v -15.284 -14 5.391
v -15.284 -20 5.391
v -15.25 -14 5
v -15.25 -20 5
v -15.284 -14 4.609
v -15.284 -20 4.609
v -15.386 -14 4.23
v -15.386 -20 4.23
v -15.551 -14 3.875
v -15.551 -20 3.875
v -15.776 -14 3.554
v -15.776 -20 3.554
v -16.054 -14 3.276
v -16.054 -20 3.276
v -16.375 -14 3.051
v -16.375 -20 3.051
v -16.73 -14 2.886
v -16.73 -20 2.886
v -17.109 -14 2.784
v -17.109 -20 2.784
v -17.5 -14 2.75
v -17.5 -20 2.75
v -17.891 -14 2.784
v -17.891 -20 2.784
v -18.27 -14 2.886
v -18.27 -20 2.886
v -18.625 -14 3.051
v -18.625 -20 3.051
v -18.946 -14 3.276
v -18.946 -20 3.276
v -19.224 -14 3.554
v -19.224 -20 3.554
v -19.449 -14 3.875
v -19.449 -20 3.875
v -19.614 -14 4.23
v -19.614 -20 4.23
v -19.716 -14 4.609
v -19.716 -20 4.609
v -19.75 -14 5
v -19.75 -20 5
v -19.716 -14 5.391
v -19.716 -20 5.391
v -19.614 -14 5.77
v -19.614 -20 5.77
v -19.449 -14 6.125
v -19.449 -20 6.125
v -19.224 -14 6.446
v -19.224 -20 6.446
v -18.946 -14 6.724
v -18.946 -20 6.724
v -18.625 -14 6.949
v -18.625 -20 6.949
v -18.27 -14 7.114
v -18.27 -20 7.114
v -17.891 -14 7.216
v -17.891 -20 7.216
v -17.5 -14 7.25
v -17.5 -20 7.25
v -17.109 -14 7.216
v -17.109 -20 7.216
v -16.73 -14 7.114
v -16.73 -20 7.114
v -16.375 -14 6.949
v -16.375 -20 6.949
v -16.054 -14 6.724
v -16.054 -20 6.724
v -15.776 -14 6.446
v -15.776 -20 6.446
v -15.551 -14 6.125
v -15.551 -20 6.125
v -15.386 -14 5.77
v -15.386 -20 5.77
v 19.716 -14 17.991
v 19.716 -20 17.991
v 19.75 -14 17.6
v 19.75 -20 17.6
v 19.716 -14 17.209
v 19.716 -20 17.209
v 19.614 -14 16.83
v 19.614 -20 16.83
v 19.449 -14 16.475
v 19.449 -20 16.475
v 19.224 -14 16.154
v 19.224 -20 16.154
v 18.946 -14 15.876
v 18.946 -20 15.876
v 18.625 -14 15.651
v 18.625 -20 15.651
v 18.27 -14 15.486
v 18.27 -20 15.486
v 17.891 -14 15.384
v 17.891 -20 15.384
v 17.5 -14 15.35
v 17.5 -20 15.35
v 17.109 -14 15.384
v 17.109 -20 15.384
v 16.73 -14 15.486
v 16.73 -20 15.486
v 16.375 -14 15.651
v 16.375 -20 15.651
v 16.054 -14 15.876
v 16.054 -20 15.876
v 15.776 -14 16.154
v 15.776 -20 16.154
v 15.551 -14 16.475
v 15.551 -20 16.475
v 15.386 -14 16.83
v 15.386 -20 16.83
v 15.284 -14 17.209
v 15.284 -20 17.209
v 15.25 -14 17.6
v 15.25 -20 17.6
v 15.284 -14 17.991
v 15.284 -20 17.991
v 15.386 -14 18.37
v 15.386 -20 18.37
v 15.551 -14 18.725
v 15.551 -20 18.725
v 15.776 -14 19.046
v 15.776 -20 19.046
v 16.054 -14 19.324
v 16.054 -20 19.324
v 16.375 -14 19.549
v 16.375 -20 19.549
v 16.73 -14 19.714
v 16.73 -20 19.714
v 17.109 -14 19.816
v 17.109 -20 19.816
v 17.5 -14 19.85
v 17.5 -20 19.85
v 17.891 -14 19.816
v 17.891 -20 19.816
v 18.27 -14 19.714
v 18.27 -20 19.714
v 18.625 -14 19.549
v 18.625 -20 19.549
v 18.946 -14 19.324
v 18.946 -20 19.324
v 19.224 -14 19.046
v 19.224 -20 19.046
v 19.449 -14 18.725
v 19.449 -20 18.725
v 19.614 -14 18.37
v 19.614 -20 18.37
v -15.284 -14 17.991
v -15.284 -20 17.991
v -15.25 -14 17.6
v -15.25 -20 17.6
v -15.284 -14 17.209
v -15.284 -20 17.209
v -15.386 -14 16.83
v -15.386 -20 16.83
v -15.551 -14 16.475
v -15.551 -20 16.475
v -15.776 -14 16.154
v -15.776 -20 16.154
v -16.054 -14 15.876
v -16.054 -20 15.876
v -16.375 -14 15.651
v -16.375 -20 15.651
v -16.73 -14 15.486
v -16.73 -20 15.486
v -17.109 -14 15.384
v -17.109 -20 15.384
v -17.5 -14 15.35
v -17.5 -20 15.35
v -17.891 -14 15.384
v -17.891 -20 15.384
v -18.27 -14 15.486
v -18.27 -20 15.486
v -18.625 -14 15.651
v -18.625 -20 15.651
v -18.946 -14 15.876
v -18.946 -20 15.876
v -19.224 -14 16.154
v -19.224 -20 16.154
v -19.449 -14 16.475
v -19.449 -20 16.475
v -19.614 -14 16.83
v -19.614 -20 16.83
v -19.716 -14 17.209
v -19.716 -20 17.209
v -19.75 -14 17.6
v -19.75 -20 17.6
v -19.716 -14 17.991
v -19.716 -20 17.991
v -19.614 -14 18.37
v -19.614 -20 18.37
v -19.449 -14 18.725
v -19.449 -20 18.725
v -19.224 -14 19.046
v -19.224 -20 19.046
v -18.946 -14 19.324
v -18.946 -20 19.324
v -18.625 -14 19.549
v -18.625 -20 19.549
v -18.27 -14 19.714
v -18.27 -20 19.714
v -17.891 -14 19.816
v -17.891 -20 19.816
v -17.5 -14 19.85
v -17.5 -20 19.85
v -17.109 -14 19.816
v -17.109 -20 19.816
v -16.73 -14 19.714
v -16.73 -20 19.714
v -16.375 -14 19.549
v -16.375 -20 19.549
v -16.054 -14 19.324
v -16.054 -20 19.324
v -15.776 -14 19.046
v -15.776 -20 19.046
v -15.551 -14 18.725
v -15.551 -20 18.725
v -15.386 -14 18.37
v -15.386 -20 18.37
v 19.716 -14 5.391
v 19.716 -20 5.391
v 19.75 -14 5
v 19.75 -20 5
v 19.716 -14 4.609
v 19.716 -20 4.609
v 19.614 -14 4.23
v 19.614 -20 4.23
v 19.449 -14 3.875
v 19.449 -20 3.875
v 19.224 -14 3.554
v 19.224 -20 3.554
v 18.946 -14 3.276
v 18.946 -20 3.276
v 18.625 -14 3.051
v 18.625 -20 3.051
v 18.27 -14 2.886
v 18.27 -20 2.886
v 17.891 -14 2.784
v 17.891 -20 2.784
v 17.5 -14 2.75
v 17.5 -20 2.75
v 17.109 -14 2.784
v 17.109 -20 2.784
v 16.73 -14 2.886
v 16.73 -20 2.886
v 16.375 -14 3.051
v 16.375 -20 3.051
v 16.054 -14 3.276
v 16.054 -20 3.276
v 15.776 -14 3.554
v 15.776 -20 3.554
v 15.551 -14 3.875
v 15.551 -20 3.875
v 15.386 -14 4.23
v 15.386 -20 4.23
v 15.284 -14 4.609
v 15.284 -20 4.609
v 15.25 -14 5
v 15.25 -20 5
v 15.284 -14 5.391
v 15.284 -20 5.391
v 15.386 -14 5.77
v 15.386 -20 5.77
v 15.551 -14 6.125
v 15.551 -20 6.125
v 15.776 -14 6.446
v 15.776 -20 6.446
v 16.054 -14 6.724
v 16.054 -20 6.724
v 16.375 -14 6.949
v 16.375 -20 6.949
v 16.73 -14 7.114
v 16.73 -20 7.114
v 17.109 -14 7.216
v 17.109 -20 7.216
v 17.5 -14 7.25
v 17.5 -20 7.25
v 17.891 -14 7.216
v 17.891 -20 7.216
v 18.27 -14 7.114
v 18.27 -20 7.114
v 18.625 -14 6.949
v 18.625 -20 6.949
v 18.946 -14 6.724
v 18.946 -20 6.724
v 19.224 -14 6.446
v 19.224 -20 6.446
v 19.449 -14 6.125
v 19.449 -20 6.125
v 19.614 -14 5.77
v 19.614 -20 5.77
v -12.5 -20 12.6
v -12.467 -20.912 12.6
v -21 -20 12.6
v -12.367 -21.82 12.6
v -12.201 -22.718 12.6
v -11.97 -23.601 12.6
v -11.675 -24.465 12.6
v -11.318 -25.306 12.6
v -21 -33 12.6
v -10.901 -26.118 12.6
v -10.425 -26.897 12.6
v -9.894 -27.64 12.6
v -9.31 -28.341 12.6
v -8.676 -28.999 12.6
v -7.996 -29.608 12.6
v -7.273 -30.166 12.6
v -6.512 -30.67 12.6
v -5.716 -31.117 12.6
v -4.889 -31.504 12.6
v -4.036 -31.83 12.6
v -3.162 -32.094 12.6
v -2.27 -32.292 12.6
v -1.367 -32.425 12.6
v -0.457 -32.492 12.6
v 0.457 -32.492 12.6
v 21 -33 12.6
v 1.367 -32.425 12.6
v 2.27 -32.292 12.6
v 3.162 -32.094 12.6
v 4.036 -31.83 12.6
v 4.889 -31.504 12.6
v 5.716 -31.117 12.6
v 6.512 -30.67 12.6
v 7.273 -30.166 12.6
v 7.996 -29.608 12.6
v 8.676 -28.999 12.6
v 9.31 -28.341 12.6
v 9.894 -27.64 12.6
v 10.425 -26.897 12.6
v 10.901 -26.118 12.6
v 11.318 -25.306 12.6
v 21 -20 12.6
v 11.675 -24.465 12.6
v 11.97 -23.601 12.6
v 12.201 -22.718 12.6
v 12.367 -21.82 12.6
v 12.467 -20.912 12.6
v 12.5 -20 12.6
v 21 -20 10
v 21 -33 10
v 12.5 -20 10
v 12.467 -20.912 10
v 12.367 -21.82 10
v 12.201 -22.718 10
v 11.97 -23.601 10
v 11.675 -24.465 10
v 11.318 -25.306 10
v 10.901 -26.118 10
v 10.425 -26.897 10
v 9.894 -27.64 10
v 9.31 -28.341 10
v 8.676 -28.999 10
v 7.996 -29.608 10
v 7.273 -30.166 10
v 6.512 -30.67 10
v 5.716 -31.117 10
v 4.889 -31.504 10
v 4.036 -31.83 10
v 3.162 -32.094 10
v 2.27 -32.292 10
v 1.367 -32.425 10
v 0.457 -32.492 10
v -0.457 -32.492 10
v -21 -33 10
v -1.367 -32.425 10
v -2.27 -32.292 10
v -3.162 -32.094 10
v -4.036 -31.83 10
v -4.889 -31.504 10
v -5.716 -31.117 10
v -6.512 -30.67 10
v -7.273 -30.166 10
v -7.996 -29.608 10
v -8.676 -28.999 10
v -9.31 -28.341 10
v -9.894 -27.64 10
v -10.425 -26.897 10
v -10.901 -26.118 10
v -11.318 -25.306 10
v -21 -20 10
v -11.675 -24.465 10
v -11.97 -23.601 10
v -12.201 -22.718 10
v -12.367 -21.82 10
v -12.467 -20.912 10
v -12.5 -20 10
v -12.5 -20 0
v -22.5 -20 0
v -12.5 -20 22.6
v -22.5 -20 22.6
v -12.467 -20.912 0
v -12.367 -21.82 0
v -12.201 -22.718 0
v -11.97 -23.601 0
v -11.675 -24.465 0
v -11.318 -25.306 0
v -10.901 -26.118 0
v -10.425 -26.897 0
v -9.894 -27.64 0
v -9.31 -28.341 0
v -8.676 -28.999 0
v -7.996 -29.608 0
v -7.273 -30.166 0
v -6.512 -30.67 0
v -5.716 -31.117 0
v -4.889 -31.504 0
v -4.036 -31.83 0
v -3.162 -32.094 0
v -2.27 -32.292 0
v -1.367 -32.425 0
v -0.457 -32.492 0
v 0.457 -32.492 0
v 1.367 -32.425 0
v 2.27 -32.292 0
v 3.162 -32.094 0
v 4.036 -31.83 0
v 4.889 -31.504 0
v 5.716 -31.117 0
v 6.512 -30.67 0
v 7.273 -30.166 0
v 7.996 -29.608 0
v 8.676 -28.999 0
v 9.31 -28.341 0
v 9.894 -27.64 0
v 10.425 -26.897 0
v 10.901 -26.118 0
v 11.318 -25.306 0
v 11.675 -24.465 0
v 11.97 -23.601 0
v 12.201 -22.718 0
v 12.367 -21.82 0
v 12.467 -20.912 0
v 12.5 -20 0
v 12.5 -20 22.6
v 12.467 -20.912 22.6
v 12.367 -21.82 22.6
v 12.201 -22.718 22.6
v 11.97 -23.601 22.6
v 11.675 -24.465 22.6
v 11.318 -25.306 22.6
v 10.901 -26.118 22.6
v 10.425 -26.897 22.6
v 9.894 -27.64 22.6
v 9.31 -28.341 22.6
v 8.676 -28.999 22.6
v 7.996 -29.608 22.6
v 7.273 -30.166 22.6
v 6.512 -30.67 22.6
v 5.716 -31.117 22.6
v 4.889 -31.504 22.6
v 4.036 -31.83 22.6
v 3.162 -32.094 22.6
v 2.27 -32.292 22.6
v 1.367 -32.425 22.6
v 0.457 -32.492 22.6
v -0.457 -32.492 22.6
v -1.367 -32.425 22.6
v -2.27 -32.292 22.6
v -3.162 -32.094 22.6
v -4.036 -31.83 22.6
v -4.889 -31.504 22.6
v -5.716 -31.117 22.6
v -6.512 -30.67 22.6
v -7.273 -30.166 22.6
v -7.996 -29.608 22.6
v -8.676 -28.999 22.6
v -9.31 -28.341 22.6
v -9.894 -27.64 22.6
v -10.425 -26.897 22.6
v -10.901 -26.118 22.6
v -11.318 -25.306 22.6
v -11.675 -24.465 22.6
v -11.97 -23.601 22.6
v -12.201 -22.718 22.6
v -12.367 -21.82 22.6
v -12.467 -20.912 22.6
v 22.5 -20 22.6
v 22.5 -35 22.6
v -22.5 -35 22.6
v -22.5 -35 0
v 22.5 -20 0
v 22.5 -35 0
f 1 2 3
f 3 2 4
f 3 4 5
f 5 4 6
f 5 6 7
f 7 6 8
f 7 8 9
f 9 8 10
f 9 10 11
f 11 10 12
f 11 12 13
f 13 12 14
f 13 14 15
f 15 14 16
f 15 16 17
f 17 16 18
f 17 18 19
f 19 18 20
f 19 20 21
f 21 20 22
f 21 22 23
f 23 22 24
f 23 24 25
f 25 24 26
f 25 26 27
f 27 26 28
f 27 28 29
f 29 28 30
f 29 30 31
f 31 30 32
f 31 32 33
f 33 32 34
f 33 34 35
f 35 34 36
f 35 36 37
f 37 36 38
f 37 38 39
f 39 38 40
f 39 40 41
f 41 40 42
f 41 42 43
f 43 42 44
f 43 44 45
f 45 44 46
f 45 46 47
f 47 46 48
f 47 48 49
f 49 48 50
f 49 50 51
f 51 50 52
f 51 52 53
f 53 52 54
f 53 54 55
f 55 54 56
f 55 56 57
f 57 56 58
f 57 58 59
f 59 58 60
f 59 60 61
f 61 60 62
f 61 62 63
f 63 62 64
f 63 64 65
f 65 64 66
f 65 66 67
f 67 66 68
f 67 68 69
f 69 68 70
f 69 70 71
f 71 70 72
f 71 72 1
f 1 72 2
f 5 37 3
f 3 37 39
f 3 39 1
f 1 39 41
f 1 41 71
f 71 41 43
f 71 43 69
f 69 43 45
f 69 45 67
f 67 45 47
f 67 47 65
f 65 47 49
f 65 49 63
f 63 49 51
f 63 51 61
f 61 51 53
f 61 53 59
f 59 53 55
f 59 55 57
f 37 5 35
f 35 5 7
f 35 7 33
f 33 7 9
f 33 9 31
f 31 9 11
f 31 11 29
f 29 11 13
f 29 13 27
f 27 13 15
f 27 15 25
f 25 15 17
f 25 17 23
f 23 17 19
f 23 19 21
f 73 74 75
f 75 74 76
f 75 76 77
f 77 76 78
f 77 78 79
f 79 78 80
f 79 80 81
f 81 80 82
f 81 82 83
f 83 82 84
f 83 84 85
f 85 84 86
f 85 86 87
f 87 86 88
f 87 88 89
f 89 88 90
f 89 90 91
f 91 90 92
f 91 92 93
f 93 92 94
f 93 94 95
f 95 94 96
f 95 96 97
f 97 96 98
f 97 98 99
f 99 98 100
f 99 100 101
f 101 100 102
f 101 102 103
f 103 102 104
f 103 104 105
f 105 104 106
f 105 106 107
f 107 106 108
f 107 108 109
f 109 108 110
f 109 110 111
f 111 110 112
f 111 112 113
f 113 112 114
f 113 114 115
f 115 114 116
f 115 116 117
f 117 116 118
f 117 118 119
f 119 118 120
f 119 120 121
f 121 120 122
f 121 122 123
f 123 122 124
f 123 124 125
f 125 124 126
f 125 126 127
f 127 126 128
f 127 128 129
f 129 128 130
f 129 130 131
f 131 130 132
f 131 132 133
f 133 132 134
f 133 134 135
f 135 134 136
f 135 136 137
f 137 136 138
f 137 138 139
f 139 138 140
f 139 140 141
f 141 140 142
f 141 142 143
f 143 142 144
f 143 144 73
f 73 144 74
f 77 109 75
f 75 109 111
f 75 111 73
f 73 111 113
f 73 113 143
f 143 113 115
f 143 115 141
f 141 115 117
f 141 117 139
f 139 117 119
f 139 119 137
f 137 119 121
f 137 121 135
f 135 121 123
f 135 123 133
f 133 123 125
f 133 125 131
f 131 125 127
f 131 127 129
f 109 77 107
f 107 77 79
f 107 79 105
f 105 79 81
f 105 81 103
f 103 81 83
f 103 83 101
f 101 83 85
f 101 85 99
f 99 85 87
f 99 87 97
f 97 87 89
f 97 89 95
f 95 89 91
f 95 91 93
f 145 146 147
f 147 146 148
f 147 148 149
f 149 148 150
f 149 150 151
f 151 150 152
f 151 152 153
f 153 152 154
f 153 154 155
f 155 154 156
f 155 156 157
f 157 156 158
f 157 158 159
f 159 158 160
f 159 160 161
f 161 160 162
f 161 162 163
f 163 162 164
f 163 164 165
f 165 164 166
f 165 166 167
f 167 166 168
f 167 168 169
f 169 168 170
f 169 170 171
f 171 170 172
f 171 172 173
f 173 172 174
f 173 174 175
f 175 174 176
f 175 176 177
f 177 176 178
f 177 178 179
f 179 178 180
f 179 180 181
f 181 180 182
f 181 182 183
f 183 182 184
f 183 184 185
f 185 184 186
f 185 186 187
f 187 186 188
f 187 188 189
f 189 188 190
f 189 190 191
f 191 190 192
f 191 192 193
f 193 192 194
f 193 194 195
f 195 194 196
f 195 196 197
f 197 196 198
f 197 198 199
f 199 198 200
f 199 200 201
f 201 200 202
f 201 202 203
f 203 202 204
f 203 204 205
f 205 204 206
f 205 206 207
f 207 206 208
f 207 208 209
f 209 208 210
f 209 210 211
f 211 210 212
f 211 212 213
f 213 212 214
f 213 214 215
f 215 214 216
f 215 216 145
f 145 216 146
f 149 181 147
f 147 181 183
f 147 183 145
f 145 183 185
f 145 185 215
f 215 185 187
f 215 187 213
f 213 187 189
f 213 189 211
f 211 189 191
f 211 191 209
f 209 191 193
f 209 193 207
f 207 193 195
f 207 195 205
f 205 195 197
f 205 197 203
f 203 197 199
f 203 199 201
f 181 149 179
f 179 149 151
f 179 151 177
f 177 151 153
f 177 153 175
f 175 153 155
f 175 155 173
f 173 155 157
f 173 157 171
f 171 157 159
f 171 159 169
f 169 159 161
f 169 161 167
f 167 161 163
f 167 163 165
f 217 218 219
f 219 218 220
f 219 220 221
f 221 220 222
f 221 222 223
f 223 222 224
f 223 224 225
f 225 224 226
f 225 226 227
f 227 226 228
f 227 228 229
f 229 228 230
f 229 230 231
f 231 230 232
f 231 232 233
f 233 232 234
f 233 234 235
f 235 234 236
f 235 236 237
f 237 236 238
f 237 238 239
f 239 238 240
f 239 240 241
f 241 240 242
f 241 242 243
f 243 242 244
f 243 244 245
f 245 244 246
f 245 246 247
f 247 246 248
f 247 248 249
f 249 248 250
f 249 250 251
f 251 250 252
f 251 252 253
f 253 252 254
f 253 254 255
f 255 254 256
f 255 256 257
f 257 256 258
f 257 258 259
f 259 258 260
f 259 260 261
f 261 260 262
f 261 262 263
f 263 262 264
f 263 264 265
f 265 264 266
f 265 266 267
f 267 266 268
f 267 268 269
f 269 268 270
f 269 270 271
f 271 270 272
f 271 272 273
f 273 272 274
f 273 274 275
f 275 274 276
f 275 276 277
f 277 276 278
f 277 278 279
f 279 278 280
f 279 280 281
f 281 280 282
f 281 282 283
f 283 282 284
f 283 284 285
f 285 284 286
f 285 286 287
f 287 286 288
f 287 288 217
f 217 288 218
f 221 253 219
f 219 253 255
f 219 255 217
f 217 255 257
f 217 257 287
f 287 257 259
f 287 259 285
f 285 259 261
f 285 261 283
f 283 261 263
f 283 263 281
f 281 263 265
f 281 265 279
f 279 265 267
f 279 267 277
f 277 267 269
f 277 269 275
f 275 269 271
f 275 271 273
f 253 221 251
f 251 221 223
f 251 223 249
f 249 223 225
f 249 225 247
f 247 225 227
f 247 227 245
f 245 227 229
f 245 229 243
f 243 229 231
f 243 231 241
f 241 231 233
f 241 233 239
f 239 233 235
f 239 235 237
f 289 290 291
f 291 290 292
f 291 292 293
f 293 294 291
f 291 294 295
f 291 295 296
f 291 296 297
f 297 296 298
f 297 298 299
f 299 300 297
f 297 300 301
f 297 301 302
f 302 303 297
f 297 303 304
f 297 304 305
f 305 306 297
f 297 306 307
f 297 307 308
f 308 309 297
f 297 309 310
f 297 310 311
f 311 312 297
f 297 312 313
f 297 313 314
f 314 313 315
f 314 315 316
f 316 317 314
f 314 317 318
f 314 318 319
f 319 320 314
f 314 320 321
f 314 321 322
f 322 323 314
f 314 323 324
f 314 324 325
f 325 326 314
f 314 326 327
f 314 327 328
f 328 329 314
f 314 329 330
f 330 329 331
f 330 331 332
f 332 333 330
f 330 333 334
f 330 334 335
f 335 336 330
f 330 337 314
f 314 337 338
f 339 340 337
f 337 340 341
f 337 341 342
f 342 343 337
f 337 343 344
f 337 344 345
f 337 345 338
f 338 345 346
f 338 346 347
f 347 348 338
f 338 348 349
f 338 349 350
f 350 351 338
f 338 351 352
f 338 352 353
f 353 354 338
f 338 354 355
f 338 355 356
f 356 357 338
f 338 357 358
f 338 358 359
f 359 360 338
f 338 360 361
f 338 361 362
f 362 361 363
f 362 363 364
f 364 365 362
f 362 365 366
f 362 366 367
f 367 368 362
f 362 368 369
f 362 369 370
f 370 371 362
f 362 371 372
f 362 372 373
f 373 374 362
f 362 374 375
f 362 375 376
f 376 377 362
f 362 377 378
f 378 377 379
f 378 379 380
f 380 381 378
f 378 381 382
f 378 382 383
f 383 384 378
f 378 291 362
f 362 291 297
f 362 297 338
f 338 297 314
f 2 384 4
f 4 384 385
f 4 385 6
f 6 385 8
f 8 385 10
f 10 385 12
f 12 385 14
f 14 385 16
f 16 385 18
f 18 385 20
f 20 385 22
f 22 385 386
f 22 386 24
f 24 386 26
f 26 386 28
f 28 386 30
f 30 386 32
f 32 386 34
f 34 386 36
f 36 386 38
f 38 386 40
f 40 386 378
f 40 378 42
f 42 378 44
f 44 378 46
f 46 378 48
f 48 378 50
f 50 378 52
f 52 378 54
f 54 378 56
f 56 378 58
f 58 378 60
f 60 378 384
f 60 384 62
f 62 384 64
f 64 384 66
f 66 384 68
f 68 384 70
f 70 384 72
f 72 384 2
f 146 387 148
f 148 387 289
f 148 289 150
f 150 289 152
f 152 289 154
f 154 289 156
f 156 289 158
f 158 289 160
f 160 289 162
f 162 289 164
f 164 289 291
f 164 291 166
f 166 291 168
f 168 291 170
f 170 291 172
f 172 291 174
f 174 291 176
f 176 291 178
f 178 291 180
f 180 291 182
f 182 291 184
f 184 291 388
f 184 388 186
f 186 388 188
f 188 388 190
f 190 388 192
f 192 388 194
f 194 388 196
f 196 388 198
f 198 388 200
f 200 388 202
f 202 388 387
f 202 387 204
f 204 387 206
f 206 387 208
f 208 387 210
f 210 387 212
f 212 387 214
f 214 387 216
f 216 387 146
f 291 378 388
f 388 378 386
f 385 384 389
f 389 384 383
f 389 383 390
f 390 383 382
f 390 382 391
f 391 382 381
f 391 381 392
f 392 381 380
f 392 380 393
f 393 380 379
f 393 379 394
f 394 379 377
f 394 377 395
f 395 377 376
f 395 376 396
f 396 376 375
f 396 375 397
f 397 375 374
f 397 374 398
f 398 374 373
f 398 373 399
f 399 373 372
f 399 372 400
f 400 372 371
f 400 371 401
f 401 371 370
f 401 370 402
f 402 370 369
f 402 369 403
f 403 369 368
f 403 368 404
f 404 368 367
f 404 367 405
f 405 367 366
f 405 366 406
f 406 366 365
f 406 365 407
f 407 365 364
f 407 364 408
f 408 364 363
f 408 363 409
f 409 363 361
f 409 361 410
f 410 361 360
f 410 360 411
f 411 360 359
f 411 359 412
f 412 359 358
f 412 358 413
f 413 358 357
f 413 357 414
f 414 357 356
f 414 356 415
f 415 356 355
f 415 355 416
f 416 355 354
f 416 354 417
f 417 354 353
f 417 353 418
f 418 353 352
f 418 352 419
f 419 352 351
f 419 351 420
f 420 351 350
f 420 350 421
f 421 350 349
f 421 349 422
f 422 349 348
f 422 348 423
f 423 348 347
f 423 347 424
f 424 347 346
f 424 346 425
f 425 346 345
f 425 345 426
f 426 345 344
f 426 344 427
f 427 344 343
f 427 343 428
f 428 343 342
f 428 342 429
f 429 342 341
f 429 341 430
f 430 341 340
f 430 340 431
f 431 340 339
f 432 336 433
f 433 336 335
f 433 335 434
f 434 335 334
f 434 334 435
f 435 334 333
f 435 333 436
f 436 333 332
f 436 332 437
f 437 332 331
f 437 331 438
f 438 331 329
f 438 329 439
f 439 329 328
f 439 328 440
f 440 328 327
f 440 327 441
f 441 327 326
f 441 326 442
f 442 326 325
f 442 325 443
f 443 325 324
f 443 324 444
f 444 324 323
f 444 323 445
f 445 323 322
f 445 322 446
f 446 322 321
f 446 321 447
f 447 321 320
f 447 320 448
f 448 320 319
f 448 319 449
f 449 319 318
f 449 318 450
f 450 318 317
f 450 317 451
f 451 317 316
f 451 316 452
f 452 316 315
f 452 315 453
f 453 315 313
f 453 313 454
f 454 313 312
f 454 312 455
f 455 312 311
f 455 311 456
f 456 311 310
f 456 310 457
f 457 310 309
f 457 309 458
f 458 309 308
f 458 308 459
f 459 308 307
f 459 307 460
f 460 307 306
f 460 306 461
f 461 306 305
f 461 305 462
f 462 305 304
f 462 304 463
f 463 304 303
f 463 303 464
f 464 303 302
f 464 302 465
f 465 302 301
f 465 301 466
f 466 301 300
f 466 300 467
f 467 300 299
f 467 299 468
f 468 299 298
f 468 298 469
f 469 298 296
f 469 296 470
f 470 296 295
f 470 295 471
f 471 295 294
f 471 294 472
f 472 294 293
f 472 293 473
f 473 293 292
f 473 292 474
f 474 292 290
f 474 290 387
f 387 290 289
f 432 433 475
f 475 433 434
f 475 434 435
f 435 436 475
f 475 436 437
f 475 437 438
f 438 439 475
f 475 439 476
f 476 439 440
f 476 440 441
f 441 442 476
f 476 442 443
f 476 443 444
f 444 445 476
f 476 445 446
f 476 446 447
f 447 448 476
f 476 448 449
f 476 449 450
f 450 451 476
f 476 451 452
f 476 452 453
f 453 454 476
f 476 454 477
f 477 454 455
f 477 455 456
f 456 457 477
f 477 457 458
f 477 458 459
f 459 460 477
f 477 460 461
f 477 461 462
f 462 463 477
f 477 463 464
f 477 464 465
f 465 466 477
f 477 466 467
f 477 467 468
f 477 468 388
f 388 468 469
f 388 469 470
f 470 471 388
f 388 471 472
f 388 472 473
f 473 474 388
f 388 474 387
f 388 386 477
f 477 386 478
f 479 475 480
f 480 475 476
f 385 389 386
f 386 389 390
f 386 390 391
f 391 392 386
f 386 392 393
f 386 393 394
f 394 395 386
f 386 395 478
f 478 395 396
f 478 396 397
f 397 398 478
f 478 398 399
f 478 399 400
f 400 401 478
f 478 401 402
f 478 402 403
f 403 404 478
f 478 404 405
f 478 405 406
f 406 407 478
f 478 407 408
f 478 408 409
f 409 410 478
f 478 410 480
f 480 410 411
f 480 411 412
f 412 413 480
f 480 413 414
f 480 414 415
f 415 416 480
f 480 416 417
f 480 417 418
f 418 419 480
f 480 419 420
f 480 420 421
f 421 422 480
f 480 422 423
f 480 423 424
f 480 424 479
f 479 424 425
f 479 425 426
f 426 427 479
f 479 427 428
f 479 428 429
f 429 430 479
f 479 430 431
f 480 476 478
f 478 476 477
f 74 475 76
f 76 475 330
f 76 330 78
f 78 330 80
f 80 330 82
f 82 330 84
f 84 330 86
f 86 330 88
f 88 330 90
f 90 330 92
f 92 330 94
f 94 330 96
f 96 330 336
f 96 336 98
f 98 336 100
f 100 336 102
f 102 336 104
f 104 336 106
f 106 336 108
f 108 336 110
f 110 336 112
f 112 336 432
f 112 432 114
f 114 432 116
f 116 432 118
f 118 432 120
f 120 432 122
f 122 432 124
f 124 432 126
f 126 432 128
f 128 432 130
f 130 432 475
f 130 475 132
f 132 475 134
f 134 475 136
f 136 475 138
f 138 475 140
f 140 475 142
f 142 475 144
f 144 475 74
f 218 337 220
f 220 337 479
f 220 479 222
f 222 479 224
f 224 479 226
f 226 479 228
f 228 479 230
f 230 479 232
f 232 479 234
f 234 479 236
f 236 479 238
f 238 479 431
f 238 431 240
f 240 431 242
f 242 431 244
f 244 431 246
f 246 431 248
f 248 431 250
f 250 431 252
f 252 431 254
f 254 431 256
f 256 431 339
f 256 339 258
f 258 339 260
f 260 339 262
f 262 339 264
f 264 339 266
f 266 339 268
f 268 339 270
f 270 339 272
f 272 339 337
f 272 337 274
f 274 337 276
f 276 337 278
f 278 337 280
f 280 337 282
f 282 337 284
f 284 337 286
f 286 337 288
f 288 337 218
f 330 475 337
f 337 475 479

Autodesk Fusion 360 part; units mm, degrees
sketch "スケッチ1" plane through (0, 0, 0) normal (0, 1, 0) x (1, 0, 0)
  line L0 (-21, 0) -> (21, 0)
  line L1 (21, 0) -> (21, -72.5)
  line L2 (21, -72.5) -> (-21, -72.5)
  line L3 (-21, -72.5) -> (-21, 0)
  line L4 (6.5, -72.5) -> (-6.5, -72.5)
  line L5 (-6.5, -72.5) -> (-6.5, -96.5)
  line L6 (-6.5, -96.5) -> (6.5, -96.5)
  line L7 (6.5, -96.5) -> (6.5, -72.5)
  line L8 (-12.5, -160.5) -> (9, -160.5)
  line L9 (9, -160.5) -> (9, -96.5)
  line L10 (9, -96.5) -> (-12.5, -96.5)
  line L11 (-12.5, -96.5) -> (-12.5, -160.5)
  line L12 (-21, -67.5) -> (21, -67.5) construction
  circle A0 centre (-12, -67.5) radius 1.75
  circle A1 centre (12, -67.5) radius 1.75
  line L13 (0, -1.75) -> (0, -22.5)
  circle A2 centre (0, -155.5) radius 2
  dimension "d1" = 42
  dimension "d2" = 5
  dimension "d3" = 3.5
  dimension "d4" = 3.5
  dimension "d5" = 24
  dimension "d6" = 72.5
  dimension "d7" = 13
  dimension "d8" = 2.5
  dimension "d9" = 6
  dimension "d10" = 24
  dimension "d11" = 64
  dimension "d12" = 4
  dimension "d13" = 5
extrude "押し出し1" add sketch "スケッチ1" against normal blind 2 makes body 1
sketch "スケッチ2" plane through (0, 0, 0) normal (0, 1, 0) x (-1, 0, 0)
  circle A0 centre (12, 67.5) radius 1.75
  circle A1 centre (-12, 67.5) radius 1.75
  circle A2 centre (0, 155.5) radius 2
  line L0 (6.5, 72.5) -> (6.5, 96.5)
  line L1 (6.5, 96.5) -> (12.5, 96.5)
  line L2 (12.5, 96.5) -> (12.5, 160.5)
  line L3 (12.5, 160.5) -> (-9, 160.5)
  line L4 (-9, 160.5) -> (-9, 96.5)
  line L5 (-9, 96.5) -> (-6.5, 96.5)
  line L6 (-6.5, 96.5) -> (-6.5, 72.5)
  line L7 (-6.5, 72.5) -> (-21, 72.5)
  line L8 (-21, 72.5) -> (-21, 0)
  line L9 (-21, 0) -> (21, 0)
  line L10 (21, 0) -> (21, 72.5)
  line L11 (21, 72.5) -> (6.5, 72.5)
  line L12 (-21, 0) -> (-22.5, 0)
  line L13 (-22.5, 0) -> (-22.5, 74)
  line L14 (-22.5, 74) -> (-8, 74)
  line L15 (-8, 74) -> (-8, 95)
  line L16 (-8, 95) -> (-10.5, 95)
  line L17 (-10.5, 95) -> (-10.5, 160.5)
  line L18 (-10.5, 160.5) -> (-9, 160.5)
  line L19 (12.5, 160.5) -> (14, 160.5)
  line L20 (14, 160.5) -> (14, 95)
  line L21 (14, 95) -> (8, 95)
  line L22 (8, 95) -> (8, 74)
  line L23 (8, 74) -> (22.5, 74)
  line L24 (22.5, 74) -> (22.5, 0)
  line L25 (22.5, 0) -> (21, 0)
  dimension "d16" = 1.5
  dimension "d17" = 1.5
  dimension "d18" = 1.5
  dimension "d19" = 1.5
  dimension "d20" = 1.5
  dimension "d22" = 1.5
  dimension "d23" = 1.5
  dimension "d24" = 1.5
  dimension "d25" = 1.5
  dimension "d26" = 1.5
extrude "押し出し2" add sketch "スケッチ2" against normal blind 15 contours L0 L1 L2 L10 L11 L19 L20 L21 L22 L23 L24 L25 | L4 L5 L6 L7 L8 L12 L13 L14 L15 L16 L17 L18 bodies 1
sketch "スケッチ3" plane through (0, -2, 0) normal (0, -1, 0) x (1, 0, 0)
  circle A0 centre (-12, 67.5) radius 1.75
  circle A1 centre (12, 67.5) radius 1.75
  circle A2 centre (0, 155.5) radius 2
  line L0 (-6.5, 96.5) -> (-6.5, 72.5)
  line L1 (-6.5, 72.5) -> (-21, 72.5)
  line L2 (-21, 72.5) -> (-21, 0)
  line L3 (-21, 0) -> (21, 0)
  line L4 (21, 0) -> (21, 72.5)
  line L5 (21, 72.5) -> (6.5, 72.5)
  line L6 (6.5, 72.5) -> (6.5, 96.5)
  line L7 (6.5, 96.5) -> (9, 96.5)
  line L8 (9, 96.5) -> (9, 160.5)
  line L9 (9, 160.5) -> (-12.5, 160.5)
  line L10 (-12.5, 160.5) -> (-12.5, 96.5)
  line L11 (-12.5, 96.5) -> (-6.5, 96.5)
  line L12 (-21, 0) -> (21, 0)
  line L13 (21, 0) -> (21, 10)
  line L14 (21, 10) -> (-21, 10)
  line L15 (-21, 10) -> (-21, 0)
  line L16 (-21, 12.6) -> (21, 12.6)
  line L17 (21, 12.6) -> (21, 22.6)
  line L18 (21, 22.6) -> (-21, 22.6)
  line L19 (-21, 22.6) -> (-21, 12.6)
  dimension "d29" = 10
  dimension "d30" = 10
  dimension "d31" = 2.6
extrude "押し出し3" add sketch "スケッチ3" along normal up to surface (13 mm away) contours L2 L4 L16 L17 L18 L19 | L2 L3 L4 L12 L13 L14 L15 bodies 1
sketch "スケッチ4" plane through (0, 0, 0) normal (0, 0, -1) x (1, 0, 0)
  line L0 (-22.5, 0) -> (22.5, 0)
  line L1 (22.5, 0) -> (22.5, 15)
  line L2 (22.5, 15) -> (-22.5, 15)
  line L3 (-22.5, 15) -> (-22.5, 0)
  arc A0 (-12.5, 15) -> (12.5, 15) centre (0, 15) ccw
  dimension "d34" = 25
extrude "押し出し4" cut sketch "スケッチ4" against normal up to surface (22.6 mm away) contours L2 A0 bodies 1
sketch "スケッチ10" plane through (0, -2, 0) normal (0, -1, 0) x (1, 0, 0)
  circle A0 centre (12, 67.5) radius 1.75
  circle A1 centre (0, 155.5) radius 2
  circle A2 centre (-12, 67.5) radius 1.75
  line L0 (-21, 22.6) -> (21, 22.6)
  line L1 (21, 22.6) -> (21, 72.5)
  line L2 (21, 72.5) -> (6.5, 72.5)
  line L3 (6.5, 72.5) -> (6.5, 96.5)
  line L4 (6.5, 96.5) -> (9, 96.5)
  line L5 (9, 96.5) -> (9, 160.5)
  line L6 (9, 160.5) -> (-12.5, 160.5)
  line L7 (-12.5, 160.5) -> (-12.5, 96.5)
  line L8 (-12.5, 96.5) -> (-6.5, 96.5)
  line L9 (-6.5, 96.5) -> (-6.5, 72.5)
  line L10 (-6.5, 72.5) -> (-21, 72.5)
  line L11 (-21, 72.5) -> (-21, 22.6)
  circle A3 centre (0, 155.5) radius 4
  dimension "d48" = 8
extrude "押し出し9" add sketch "スケッチ10" along normal blind 6 contours A3 bodies 1
sketch "スケッチ9" plane through (0, -2, 0) normal (0, -1, 0) x (1, 0, 0)
  circle A0 centre (12, 67.5) radius 1.75
  circle A1 centre (-12, 67.5) radius 1.75
  line L0 (-21, 22.6) -> (21, 22.6)
  line L1 (21, 22.6) -> (21, 72.5)
  line L2 (21, 72.5) -> (6.5, 72.5)
  line L3 (6.5, 72.5) -> (6.5, 96.5)
  line L4 (6.5, 96.5) -> (9, 96.5)
  line L5 (9, 96.5) -> (9, 160.5)
  line L6 (9, 160.5) -> (-12.5, 160.5)
  line L7 (-12.5, 160.5) -> (-12.5, 96.5)
  line L8 (-12.5, 96.5) -> (-6.5, 96.5)
  line L9 (-6.5, 96.5) -> (-6.5, 72.5)
  line L10 (-6.5, 72.5) -> (-21, 72.5)
  line L11 (-21, 72.5) -> (-21, 22.6)
  line L12 (-21, 72.5) -> (21, 72.5)
  line L13 (21, 72.5) -> (21, 62.5)
  line L14 (21, 62.5) -> (-21, 62.5)
  line L15 (-21, 62.5) -> (-21, 72.5)
  circle A2 centre (0, 155.5) radius 4
  dimension "d45" = 10
extrude "押し出し8" add sketch "スケッチ9" along normal blind 1 contours L1 L2 L10 L11 L12 L13 L14 L15 bodies 1
ref_plane "作業平面1" through (0, -20, 80.25) normal (0, -1, 0) x (0, 0, -1)
sketch "スケッチ6" plane through (0, -20, 0) normal (0, -1, 0) x (-1, 0, 0)
  line L0 (-22.5, 0) -> (22.5, 0)
  line L1 (22.5, 0) -> (22.5, -22.6)
  line L2 (22.5, -22.6) -> (-22.5, -22.6)
  line L3 (-22.5, -22.6) -> (-22.5, 0)
  line L4 (-22.5, 0) -> (-22.5, -74)
  line L5 (-12.5, -22.6) -> (-21, -22.6)
  line L6 (-12.5, 0) -> (-22.5, 0)
  line L7 (22.5, -74) -> (22.5, 0)
extrude "押し出し5" add sketch "スケッチ6" along normal blind 15 separate body makes body 2
sketch "スケッチ7" plane through (0, 0, 0) normal (0, 0, -1) x (1, 0, 0)
  line L0 (-22.5, 20) -> (22.5, 20)
  line L1 (22.5, 20) -> (22.5, 35)
  line L2 (22.5, 35) -> (-22.5, 35)
  line L3 (-22.5, 35) -> (-22.5, 20)
  arc A0 (12.5, 20) -> (-12.5, 20) centre (0, 20) ccw
  dimension "d40" = 25
extrude "押し出し6" cut sketch "スケッチ7" against normal up to surface (22.6 mm away) contours L0 A0 bodies 2
sketch "スケッチ8" plane through (0, -20, 0) normal (0, 1, 0) x (-1, 0, 0)
  line L0 (-12.5, 0) -> (-12.5, 22.6)
  line L1 (-12.5, 22.6) -> (-22.5, 22.6)
  line L2 (-22.5, 22.6) -> (-22.5, 0)
  line L3 (-22.5, 0) -> (-12.5, 0)
  line L4 (21, 12.6) -> (-21, 12.6)
  line L5 (-21, 12.6) -> (-21, 10)
  line L6 (-21, 10) -> (21, 10)
  line L7 (21, 10) -> (21, 12.6)
  point P0 (21, 12.6)
  point P1 (21, 10)
  point P2 (-21, 12.6)
extrude "押し出し7" cut sketch "スケッチ8" against normal blind 13 contours L0 L4 L5 L6 | L0 L4 L6 L7 bodies 2
sketch "スケッチ11" plane through (0, -15, 0) normal (0, -1, 0) x (1, 0, 0)
  line L0 (-12.5, 0) -> (-12.5, 10)
  line L1 (-12.5, 10) -> (-21, 10)
  line L2 (-21, 10) -> (-21, 12.6)
  line L3 (-21, 12.6) -> (-12.5, 12.6)
  line L4 (-12.5, 12.6) -> (-12.5, 22.6)
  line L5 (-12.5, 22.6) -> (-21, 22.6)
  line L6 (-21, 22.6) -> (-21, 72.5)
  line L7 (-21, 72.5) -> (-6.5, 72.5)
  line L8 (-6.5, 72.5) -> (-6.5, 96.5)
  line L9 (-6.5, 96.5) -> (-12.5, 96.5)
  line L10 (-12.5, 96.5) -> (-12.5, 160.5)
  line L11 (-12.5, 160.5) -> (-14, 160.5)
  line L12 (-14, 160.5) -> (-14, 95)
  line L13 (-14, 95) -> (-8, 95)
  line L14 (-8, 95) -> (-8, 74)
  line L15 (-8, 74) -> (-22.5, 74)
  line L16 (-22.5, 74) -> (-22.5, 0)
  line L17 (-22.5, 0) -> (-12.5, 0)
  line L18 (-17.5, 17.6) -> (17.5, 17.6) construction
  line L19 (17.5, 17.6) -> (17.5, 5) construction
  line L20 (17.5, 5) -> (-17.5, 5) construction
  line L21 (-17.5, 5) -> (-17.5, 17.6) construction
  line L22 (22.5, 0) -> (22.5, 74)
  circle A0 centre (-17.5, 17.6) radius 2.5
  circle A1 centre (17.5, 17.6) radius 2.5
  circle A2 centre (-17.5, 5) radius 2.5
  circle A3 centre (17.5, 5) radius 2.5
  dimension "d51" = 5
  dimension "d52" = 5
  dimension "d53" = 5
  dimension "d54" = 5
  dimension "d55" = 5
  dimension "d56" = 5
  dimension "d57" = 5
  dimension "d58" = 5
extrude "押し出し10" cut sketch "スケッチ11" against normal blind 10 contours A0 | A1 | A2 | A3 bodies 1
sketch "スケッチ12" plane through (0, -20, 0) normal (0, 1, 0) x (-1, 0, 0)
  line L0 (12.5, 12.6) -> (21, 12.6)
  line L1 (21, 12.6) -> (21, 10)
  line L2 (21, 10) -> (12.5, 10)
  line L3 (12.5, 10) -> (12.5, 0)
  line L4 (12.5, 0) -> (22.5, 0)
  line L5 (22.5, 0) -> (22.5, 22.6)
  line L6 (22.5, 22.6) -> (12.5, 22.6)
  line L7 (12.5, 22.6) -> (12.5, 12.6)
  circle A0 centre (17.5, 17.6) radius 2.5
  circle A1 centre (17.5, 17.6) radius 2.5
  circle A2 centre (17.5, 5) radius 2.5
  circle A3 centre (-17.5, 17.6) radius 2.5
  circle A4 centre (-17.5, 5) radius 2.5
  circle A5 centre (-17.5, 17.6) radius 2.25
  circle A6 centre (-17.5, 5) radius 2.25
  circle A7 centre (17.5, 17.6) radius 2.25
  circle A8 centre (17.5, 5) radius 2.25
  dimension "d63" = 4.5
  dimension "d64" = 4.5
  dimension "d65" = 4.5
  dimension "d66" = 4.5
extrude "押し出し12" add sketch "スケッチ12" along normal blind 6 contours A5 | A6 | A7 | A8 bodies 2
sketch "スケッチ14" plane through (0, 0, 0) normal (0, 1, 0) x (-1, 0, 0)
  circle A0 centre (0, 155.5) radius 2
  circle A1 centre (12, 67.5) radius 1.75
  circle A2 centre (-12, 67.5) radius 1.75
  line L0 (14, 160.5) -> (-10.5, 160.5)
  line L1 (-10.5, 160.5) -> (-10.5, 95)
  line L2 (-10.5, 95) -> (-8, 95)
  line L3 (-8, 95) -> (-8, 74)
  line L4 (-8, 74) -> (-22.5, 74)
  line L5 (-22.5, 74) -> (-22.5, 0)
  line L6 (-22.5, 0) -> (22.5, 0)
  line L7 (22.5, 0) -> (22.5, 74)
  line L8 (22.5, 74) -> (8, 74)
  line L9 (8, 74) -> (8, 95)
  line L10 (8, 95) -> (14, 95)
  line L11 (14, 95) -> (14, 160.5)
  line L12 (14, 149) -> (15.5, 149)
  line L13 (15.5, 149) -> (14, 150.5)
  line L14 (14, 126.5) -> (15.5, 126.5)
  line L15 (15.5, 126.5) -> (14, 125)
  line L16 (-10.5, 150.5) -> (-12, 149)
  line L17 (-12, 149) -> (-10.5, 149)
  line L18 (-10.5, 126.5) -> (-12, 126.5)
  line L19 (-12, 126.5) -> (-10.5, 125)
  dimension "d79" = 10
  dimension "d80" = 10
  dimension "d81" = 1.5
  dimension "d82" = 1.5
  dimension "d83" = 22.5
  dimension "d84" = 1.5
  dimension "d85" = 1.5
  dimension "d86" = 1.5
  dimension "d88" = 1.5
  dimension "d89" = 1.5
extrude "押し出し13" add sketch "スケッチ14" against normal up to surface (15 mm away) contours L11 L12 L13 | L1 L16 L17 | L11 L14 L15 | L1 L18 L19 bodies 1
hidden bodies 1
